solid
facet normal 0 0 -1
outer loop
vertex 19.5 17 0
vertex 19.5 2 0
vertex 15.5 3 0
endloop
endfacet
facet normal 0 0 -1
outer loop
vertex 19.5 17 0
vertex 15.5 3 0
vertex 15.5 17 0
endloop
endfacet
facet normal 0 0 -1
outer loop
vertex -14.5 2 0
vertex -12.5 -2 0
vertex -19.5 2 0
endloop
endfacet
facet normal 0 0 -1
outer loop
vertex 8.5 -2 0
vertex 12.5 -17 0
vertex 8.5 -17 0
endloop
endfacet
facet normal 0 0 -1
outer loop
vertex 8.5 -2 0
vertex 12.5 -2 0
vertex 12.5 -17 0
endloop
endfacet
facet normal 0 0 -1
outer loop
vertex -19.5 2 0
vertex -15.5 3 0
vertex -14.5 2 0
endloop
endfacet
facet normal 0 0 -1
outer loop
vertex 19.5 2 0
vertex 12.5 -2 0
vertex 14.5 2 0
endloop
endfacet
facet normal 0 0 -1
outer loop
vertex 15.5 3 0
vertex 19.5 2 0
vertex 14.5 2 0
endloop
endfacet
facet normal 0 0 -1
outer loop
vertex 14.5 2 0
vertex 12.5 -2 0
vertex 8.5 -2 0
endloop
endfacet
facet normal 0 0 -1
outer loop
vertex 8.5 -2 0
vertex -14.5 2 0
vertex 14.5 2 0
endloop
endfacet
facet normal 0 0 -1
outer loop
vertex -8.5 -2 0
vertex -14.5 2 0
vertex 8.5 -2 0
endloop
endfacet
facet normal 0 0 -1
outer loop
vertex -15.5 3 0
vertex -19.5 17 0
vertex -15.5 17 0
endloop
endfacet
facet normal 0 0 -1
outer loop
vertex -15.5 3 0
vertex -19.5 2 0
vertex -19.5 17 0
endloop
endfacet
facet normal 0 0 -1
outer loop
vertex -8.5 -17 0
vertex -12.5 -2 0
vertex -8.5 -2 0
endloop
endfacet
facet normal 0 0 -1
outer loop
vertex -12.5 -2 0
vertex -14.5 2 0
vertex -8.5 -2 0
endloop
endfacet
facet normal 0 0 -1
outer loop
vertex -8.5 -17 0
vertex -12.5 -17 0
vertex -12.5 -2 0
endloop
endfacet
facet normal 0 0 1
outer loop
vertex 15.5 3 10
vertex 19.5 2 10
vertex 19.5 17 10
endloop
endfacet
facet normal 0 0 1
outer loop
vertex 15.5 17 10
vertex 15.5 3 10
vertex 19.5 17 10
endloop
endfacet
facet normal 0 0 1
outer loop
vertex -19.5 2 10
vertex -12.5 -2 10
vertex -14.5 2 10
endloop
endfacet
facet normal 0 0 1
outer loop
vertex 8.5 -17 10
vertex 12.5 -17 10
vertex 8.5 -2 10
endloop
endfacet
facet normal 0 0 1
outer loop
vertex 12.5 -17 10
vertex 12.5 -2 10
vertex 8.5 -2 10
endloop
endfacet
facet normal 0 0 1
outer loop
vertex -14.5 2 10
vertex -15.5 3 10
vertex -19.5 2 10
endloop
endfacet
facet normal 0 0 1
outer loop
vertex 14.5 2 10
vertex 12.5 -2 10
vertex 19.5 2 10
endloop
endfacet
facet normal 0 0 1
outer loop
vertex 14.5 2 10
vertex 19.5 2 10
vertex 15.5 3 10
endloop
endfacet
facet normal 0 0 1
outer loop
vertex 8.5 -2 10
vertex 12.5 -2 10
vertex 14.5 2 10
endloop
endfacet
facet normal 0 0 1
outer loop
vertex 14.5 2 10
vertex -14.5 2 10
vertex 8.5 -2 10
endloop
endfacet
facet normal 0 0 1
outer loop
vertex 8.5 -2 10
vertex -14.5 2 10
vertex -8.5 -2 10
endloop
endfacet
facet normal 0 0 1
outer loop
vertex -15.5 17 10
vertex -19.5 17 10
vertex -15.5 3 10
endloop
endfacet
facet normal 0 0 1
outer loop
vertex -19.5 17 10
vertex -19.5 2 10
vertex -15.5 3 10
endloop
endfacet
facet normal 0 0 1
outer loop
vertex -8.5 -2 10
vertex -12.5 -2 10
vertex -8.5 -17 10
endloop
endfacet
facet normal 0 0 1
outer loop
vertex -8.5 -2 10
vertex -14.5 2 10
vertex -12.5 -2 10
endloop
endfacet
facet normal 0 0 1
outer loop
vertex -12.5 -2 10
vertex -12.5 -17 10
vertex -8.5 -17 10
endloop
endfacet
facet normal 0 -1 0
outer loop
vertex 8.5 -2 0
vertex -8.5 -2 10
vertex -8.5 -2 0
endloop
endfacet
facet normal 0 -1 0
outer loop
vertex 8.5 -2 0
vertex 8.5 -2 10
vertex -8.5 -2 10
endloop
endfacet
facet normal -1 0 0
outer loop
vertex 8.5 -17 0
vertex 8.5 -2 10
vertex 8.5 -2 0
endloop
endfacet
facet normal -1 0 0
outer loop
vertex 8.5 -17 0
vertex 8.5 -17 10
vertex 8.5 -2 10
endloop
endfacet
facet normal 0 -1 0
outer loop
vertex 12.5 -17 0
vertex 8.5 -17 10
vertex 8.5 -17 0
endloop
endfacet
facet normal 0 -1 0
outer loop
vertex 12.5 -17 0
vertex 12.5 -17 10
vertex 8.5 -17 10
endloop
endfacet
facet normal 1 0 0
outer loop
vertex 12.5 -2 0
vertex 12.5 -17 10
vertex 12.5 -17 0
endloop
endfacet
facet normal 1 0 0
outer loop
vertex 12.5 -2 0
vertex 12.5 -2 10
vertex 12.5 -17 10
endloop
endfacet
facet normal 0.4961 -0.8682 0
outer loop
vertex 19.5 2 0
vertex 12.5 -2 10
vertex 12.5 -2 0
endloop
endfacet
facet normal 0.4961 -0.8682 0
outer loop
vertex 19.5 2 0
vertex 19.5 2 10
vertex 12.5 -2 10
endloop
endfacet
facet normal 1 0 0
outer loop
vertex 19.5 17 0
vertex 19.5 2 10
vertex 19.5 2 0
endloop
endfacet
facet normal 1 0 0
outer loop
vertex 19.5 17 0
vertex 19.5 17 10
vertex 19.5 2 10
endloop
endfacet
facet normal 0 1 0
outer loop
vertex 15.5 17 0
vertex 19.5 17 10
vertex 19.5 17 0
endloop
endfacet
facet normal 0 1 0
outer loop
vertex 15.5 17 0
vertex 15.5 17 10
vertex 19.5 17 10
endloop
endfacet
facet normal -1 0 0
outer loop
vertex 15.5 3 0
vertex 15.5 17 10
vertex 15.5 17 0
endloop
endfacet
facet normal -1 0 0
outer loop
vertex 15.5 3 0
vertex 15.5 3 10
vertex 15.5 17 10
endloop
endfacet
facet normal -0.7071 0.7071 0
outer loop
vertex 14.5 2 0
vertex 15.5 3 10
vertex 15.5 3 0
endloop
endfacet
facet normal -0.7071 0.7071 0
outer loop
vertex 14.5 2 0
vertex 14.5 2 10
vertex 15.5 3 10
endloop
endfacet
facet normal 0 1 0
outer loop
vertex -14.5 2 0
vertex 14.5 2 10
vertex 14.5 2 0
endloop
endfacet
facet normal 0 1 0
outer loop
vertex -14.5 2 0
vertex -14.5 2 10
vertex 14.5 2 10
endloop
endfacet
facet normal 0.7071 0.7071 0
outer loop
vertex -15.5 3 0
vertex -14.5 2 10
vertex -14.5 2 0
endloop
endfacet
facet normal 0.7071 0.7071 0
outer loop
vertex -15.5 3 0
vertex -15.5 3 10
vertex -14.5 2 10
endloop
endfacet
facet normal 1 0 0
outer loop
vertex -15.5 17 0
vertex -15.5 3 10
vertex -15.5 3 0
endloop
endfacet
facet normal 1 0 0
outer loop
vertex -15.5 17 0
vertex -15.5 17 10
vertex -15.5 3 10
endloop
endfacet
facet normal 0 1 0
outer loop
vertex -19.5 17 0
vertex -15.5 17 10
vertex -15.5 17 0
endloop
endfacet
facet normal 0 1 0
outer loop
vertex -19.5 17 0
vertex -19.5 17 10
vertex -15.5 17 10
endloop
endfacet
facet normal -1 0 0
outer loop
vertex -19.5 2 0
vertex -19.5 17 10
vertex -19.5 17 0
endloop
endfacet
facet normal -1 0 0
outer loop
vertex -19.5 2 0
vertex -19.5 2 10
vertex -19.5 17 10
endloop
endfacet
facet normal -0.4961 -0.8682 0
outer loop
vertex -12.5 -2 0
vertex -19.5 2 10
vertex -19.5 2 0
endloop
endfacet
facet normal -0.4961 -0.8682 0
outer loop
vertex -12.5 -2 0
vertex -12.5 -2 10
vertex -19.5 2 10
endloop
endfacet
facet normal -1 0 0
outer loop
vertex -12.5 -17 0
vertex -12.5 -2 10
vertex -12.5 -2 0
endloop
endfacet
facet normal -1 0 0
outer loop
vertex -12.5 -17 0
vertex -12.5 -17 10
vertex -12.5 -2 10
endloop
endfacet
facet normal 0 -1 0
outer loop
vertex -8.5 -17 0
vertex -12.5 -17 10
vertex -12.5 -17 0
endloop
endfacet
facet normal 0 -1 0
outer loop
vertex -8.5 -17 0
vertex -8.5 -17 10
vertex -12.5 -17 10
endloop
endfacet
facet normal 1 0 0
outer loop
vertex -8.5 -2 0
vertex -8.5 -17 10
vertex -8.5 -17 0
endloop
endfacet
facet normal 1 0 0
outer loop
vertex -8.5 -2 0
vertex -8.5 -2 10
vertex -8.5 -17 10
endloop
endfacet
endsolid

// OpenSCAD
w_mount = 17;
w_psu = 31;
gap = 4;
h = 15;
extrude = 10;
x_mount = w_mount/2;
x_bottom = x_mount+gap;
x_psu = w_psu/2;
x_top = x_psu+gap;
y_gap = gap/2;
y_ext = y_gap + h;
e=1;

linear_extrude(extrude)
polygon([
    [-x_top,y_ext],[-x_psu,y_ext],[-x_psu, y_gap+e],[-x_psu+e, y_gap],[x_psu-e, y_gap],[x_psu, y_gap+e],[x_psu,y_ext],[x_top,y_ext],
    [x_top,y_gap],[x_bottom,-y_gap],
    [x_bottom,-y_ext],[x_mount,-y_ext],[x_mount,-y_gap],[-x_mount,-y_gap],[-x_mount,-y_ext],[-x_bottom,-y_ext],
    [-x_bottom,-y_gap],[-x_top,y_gap]
]);
